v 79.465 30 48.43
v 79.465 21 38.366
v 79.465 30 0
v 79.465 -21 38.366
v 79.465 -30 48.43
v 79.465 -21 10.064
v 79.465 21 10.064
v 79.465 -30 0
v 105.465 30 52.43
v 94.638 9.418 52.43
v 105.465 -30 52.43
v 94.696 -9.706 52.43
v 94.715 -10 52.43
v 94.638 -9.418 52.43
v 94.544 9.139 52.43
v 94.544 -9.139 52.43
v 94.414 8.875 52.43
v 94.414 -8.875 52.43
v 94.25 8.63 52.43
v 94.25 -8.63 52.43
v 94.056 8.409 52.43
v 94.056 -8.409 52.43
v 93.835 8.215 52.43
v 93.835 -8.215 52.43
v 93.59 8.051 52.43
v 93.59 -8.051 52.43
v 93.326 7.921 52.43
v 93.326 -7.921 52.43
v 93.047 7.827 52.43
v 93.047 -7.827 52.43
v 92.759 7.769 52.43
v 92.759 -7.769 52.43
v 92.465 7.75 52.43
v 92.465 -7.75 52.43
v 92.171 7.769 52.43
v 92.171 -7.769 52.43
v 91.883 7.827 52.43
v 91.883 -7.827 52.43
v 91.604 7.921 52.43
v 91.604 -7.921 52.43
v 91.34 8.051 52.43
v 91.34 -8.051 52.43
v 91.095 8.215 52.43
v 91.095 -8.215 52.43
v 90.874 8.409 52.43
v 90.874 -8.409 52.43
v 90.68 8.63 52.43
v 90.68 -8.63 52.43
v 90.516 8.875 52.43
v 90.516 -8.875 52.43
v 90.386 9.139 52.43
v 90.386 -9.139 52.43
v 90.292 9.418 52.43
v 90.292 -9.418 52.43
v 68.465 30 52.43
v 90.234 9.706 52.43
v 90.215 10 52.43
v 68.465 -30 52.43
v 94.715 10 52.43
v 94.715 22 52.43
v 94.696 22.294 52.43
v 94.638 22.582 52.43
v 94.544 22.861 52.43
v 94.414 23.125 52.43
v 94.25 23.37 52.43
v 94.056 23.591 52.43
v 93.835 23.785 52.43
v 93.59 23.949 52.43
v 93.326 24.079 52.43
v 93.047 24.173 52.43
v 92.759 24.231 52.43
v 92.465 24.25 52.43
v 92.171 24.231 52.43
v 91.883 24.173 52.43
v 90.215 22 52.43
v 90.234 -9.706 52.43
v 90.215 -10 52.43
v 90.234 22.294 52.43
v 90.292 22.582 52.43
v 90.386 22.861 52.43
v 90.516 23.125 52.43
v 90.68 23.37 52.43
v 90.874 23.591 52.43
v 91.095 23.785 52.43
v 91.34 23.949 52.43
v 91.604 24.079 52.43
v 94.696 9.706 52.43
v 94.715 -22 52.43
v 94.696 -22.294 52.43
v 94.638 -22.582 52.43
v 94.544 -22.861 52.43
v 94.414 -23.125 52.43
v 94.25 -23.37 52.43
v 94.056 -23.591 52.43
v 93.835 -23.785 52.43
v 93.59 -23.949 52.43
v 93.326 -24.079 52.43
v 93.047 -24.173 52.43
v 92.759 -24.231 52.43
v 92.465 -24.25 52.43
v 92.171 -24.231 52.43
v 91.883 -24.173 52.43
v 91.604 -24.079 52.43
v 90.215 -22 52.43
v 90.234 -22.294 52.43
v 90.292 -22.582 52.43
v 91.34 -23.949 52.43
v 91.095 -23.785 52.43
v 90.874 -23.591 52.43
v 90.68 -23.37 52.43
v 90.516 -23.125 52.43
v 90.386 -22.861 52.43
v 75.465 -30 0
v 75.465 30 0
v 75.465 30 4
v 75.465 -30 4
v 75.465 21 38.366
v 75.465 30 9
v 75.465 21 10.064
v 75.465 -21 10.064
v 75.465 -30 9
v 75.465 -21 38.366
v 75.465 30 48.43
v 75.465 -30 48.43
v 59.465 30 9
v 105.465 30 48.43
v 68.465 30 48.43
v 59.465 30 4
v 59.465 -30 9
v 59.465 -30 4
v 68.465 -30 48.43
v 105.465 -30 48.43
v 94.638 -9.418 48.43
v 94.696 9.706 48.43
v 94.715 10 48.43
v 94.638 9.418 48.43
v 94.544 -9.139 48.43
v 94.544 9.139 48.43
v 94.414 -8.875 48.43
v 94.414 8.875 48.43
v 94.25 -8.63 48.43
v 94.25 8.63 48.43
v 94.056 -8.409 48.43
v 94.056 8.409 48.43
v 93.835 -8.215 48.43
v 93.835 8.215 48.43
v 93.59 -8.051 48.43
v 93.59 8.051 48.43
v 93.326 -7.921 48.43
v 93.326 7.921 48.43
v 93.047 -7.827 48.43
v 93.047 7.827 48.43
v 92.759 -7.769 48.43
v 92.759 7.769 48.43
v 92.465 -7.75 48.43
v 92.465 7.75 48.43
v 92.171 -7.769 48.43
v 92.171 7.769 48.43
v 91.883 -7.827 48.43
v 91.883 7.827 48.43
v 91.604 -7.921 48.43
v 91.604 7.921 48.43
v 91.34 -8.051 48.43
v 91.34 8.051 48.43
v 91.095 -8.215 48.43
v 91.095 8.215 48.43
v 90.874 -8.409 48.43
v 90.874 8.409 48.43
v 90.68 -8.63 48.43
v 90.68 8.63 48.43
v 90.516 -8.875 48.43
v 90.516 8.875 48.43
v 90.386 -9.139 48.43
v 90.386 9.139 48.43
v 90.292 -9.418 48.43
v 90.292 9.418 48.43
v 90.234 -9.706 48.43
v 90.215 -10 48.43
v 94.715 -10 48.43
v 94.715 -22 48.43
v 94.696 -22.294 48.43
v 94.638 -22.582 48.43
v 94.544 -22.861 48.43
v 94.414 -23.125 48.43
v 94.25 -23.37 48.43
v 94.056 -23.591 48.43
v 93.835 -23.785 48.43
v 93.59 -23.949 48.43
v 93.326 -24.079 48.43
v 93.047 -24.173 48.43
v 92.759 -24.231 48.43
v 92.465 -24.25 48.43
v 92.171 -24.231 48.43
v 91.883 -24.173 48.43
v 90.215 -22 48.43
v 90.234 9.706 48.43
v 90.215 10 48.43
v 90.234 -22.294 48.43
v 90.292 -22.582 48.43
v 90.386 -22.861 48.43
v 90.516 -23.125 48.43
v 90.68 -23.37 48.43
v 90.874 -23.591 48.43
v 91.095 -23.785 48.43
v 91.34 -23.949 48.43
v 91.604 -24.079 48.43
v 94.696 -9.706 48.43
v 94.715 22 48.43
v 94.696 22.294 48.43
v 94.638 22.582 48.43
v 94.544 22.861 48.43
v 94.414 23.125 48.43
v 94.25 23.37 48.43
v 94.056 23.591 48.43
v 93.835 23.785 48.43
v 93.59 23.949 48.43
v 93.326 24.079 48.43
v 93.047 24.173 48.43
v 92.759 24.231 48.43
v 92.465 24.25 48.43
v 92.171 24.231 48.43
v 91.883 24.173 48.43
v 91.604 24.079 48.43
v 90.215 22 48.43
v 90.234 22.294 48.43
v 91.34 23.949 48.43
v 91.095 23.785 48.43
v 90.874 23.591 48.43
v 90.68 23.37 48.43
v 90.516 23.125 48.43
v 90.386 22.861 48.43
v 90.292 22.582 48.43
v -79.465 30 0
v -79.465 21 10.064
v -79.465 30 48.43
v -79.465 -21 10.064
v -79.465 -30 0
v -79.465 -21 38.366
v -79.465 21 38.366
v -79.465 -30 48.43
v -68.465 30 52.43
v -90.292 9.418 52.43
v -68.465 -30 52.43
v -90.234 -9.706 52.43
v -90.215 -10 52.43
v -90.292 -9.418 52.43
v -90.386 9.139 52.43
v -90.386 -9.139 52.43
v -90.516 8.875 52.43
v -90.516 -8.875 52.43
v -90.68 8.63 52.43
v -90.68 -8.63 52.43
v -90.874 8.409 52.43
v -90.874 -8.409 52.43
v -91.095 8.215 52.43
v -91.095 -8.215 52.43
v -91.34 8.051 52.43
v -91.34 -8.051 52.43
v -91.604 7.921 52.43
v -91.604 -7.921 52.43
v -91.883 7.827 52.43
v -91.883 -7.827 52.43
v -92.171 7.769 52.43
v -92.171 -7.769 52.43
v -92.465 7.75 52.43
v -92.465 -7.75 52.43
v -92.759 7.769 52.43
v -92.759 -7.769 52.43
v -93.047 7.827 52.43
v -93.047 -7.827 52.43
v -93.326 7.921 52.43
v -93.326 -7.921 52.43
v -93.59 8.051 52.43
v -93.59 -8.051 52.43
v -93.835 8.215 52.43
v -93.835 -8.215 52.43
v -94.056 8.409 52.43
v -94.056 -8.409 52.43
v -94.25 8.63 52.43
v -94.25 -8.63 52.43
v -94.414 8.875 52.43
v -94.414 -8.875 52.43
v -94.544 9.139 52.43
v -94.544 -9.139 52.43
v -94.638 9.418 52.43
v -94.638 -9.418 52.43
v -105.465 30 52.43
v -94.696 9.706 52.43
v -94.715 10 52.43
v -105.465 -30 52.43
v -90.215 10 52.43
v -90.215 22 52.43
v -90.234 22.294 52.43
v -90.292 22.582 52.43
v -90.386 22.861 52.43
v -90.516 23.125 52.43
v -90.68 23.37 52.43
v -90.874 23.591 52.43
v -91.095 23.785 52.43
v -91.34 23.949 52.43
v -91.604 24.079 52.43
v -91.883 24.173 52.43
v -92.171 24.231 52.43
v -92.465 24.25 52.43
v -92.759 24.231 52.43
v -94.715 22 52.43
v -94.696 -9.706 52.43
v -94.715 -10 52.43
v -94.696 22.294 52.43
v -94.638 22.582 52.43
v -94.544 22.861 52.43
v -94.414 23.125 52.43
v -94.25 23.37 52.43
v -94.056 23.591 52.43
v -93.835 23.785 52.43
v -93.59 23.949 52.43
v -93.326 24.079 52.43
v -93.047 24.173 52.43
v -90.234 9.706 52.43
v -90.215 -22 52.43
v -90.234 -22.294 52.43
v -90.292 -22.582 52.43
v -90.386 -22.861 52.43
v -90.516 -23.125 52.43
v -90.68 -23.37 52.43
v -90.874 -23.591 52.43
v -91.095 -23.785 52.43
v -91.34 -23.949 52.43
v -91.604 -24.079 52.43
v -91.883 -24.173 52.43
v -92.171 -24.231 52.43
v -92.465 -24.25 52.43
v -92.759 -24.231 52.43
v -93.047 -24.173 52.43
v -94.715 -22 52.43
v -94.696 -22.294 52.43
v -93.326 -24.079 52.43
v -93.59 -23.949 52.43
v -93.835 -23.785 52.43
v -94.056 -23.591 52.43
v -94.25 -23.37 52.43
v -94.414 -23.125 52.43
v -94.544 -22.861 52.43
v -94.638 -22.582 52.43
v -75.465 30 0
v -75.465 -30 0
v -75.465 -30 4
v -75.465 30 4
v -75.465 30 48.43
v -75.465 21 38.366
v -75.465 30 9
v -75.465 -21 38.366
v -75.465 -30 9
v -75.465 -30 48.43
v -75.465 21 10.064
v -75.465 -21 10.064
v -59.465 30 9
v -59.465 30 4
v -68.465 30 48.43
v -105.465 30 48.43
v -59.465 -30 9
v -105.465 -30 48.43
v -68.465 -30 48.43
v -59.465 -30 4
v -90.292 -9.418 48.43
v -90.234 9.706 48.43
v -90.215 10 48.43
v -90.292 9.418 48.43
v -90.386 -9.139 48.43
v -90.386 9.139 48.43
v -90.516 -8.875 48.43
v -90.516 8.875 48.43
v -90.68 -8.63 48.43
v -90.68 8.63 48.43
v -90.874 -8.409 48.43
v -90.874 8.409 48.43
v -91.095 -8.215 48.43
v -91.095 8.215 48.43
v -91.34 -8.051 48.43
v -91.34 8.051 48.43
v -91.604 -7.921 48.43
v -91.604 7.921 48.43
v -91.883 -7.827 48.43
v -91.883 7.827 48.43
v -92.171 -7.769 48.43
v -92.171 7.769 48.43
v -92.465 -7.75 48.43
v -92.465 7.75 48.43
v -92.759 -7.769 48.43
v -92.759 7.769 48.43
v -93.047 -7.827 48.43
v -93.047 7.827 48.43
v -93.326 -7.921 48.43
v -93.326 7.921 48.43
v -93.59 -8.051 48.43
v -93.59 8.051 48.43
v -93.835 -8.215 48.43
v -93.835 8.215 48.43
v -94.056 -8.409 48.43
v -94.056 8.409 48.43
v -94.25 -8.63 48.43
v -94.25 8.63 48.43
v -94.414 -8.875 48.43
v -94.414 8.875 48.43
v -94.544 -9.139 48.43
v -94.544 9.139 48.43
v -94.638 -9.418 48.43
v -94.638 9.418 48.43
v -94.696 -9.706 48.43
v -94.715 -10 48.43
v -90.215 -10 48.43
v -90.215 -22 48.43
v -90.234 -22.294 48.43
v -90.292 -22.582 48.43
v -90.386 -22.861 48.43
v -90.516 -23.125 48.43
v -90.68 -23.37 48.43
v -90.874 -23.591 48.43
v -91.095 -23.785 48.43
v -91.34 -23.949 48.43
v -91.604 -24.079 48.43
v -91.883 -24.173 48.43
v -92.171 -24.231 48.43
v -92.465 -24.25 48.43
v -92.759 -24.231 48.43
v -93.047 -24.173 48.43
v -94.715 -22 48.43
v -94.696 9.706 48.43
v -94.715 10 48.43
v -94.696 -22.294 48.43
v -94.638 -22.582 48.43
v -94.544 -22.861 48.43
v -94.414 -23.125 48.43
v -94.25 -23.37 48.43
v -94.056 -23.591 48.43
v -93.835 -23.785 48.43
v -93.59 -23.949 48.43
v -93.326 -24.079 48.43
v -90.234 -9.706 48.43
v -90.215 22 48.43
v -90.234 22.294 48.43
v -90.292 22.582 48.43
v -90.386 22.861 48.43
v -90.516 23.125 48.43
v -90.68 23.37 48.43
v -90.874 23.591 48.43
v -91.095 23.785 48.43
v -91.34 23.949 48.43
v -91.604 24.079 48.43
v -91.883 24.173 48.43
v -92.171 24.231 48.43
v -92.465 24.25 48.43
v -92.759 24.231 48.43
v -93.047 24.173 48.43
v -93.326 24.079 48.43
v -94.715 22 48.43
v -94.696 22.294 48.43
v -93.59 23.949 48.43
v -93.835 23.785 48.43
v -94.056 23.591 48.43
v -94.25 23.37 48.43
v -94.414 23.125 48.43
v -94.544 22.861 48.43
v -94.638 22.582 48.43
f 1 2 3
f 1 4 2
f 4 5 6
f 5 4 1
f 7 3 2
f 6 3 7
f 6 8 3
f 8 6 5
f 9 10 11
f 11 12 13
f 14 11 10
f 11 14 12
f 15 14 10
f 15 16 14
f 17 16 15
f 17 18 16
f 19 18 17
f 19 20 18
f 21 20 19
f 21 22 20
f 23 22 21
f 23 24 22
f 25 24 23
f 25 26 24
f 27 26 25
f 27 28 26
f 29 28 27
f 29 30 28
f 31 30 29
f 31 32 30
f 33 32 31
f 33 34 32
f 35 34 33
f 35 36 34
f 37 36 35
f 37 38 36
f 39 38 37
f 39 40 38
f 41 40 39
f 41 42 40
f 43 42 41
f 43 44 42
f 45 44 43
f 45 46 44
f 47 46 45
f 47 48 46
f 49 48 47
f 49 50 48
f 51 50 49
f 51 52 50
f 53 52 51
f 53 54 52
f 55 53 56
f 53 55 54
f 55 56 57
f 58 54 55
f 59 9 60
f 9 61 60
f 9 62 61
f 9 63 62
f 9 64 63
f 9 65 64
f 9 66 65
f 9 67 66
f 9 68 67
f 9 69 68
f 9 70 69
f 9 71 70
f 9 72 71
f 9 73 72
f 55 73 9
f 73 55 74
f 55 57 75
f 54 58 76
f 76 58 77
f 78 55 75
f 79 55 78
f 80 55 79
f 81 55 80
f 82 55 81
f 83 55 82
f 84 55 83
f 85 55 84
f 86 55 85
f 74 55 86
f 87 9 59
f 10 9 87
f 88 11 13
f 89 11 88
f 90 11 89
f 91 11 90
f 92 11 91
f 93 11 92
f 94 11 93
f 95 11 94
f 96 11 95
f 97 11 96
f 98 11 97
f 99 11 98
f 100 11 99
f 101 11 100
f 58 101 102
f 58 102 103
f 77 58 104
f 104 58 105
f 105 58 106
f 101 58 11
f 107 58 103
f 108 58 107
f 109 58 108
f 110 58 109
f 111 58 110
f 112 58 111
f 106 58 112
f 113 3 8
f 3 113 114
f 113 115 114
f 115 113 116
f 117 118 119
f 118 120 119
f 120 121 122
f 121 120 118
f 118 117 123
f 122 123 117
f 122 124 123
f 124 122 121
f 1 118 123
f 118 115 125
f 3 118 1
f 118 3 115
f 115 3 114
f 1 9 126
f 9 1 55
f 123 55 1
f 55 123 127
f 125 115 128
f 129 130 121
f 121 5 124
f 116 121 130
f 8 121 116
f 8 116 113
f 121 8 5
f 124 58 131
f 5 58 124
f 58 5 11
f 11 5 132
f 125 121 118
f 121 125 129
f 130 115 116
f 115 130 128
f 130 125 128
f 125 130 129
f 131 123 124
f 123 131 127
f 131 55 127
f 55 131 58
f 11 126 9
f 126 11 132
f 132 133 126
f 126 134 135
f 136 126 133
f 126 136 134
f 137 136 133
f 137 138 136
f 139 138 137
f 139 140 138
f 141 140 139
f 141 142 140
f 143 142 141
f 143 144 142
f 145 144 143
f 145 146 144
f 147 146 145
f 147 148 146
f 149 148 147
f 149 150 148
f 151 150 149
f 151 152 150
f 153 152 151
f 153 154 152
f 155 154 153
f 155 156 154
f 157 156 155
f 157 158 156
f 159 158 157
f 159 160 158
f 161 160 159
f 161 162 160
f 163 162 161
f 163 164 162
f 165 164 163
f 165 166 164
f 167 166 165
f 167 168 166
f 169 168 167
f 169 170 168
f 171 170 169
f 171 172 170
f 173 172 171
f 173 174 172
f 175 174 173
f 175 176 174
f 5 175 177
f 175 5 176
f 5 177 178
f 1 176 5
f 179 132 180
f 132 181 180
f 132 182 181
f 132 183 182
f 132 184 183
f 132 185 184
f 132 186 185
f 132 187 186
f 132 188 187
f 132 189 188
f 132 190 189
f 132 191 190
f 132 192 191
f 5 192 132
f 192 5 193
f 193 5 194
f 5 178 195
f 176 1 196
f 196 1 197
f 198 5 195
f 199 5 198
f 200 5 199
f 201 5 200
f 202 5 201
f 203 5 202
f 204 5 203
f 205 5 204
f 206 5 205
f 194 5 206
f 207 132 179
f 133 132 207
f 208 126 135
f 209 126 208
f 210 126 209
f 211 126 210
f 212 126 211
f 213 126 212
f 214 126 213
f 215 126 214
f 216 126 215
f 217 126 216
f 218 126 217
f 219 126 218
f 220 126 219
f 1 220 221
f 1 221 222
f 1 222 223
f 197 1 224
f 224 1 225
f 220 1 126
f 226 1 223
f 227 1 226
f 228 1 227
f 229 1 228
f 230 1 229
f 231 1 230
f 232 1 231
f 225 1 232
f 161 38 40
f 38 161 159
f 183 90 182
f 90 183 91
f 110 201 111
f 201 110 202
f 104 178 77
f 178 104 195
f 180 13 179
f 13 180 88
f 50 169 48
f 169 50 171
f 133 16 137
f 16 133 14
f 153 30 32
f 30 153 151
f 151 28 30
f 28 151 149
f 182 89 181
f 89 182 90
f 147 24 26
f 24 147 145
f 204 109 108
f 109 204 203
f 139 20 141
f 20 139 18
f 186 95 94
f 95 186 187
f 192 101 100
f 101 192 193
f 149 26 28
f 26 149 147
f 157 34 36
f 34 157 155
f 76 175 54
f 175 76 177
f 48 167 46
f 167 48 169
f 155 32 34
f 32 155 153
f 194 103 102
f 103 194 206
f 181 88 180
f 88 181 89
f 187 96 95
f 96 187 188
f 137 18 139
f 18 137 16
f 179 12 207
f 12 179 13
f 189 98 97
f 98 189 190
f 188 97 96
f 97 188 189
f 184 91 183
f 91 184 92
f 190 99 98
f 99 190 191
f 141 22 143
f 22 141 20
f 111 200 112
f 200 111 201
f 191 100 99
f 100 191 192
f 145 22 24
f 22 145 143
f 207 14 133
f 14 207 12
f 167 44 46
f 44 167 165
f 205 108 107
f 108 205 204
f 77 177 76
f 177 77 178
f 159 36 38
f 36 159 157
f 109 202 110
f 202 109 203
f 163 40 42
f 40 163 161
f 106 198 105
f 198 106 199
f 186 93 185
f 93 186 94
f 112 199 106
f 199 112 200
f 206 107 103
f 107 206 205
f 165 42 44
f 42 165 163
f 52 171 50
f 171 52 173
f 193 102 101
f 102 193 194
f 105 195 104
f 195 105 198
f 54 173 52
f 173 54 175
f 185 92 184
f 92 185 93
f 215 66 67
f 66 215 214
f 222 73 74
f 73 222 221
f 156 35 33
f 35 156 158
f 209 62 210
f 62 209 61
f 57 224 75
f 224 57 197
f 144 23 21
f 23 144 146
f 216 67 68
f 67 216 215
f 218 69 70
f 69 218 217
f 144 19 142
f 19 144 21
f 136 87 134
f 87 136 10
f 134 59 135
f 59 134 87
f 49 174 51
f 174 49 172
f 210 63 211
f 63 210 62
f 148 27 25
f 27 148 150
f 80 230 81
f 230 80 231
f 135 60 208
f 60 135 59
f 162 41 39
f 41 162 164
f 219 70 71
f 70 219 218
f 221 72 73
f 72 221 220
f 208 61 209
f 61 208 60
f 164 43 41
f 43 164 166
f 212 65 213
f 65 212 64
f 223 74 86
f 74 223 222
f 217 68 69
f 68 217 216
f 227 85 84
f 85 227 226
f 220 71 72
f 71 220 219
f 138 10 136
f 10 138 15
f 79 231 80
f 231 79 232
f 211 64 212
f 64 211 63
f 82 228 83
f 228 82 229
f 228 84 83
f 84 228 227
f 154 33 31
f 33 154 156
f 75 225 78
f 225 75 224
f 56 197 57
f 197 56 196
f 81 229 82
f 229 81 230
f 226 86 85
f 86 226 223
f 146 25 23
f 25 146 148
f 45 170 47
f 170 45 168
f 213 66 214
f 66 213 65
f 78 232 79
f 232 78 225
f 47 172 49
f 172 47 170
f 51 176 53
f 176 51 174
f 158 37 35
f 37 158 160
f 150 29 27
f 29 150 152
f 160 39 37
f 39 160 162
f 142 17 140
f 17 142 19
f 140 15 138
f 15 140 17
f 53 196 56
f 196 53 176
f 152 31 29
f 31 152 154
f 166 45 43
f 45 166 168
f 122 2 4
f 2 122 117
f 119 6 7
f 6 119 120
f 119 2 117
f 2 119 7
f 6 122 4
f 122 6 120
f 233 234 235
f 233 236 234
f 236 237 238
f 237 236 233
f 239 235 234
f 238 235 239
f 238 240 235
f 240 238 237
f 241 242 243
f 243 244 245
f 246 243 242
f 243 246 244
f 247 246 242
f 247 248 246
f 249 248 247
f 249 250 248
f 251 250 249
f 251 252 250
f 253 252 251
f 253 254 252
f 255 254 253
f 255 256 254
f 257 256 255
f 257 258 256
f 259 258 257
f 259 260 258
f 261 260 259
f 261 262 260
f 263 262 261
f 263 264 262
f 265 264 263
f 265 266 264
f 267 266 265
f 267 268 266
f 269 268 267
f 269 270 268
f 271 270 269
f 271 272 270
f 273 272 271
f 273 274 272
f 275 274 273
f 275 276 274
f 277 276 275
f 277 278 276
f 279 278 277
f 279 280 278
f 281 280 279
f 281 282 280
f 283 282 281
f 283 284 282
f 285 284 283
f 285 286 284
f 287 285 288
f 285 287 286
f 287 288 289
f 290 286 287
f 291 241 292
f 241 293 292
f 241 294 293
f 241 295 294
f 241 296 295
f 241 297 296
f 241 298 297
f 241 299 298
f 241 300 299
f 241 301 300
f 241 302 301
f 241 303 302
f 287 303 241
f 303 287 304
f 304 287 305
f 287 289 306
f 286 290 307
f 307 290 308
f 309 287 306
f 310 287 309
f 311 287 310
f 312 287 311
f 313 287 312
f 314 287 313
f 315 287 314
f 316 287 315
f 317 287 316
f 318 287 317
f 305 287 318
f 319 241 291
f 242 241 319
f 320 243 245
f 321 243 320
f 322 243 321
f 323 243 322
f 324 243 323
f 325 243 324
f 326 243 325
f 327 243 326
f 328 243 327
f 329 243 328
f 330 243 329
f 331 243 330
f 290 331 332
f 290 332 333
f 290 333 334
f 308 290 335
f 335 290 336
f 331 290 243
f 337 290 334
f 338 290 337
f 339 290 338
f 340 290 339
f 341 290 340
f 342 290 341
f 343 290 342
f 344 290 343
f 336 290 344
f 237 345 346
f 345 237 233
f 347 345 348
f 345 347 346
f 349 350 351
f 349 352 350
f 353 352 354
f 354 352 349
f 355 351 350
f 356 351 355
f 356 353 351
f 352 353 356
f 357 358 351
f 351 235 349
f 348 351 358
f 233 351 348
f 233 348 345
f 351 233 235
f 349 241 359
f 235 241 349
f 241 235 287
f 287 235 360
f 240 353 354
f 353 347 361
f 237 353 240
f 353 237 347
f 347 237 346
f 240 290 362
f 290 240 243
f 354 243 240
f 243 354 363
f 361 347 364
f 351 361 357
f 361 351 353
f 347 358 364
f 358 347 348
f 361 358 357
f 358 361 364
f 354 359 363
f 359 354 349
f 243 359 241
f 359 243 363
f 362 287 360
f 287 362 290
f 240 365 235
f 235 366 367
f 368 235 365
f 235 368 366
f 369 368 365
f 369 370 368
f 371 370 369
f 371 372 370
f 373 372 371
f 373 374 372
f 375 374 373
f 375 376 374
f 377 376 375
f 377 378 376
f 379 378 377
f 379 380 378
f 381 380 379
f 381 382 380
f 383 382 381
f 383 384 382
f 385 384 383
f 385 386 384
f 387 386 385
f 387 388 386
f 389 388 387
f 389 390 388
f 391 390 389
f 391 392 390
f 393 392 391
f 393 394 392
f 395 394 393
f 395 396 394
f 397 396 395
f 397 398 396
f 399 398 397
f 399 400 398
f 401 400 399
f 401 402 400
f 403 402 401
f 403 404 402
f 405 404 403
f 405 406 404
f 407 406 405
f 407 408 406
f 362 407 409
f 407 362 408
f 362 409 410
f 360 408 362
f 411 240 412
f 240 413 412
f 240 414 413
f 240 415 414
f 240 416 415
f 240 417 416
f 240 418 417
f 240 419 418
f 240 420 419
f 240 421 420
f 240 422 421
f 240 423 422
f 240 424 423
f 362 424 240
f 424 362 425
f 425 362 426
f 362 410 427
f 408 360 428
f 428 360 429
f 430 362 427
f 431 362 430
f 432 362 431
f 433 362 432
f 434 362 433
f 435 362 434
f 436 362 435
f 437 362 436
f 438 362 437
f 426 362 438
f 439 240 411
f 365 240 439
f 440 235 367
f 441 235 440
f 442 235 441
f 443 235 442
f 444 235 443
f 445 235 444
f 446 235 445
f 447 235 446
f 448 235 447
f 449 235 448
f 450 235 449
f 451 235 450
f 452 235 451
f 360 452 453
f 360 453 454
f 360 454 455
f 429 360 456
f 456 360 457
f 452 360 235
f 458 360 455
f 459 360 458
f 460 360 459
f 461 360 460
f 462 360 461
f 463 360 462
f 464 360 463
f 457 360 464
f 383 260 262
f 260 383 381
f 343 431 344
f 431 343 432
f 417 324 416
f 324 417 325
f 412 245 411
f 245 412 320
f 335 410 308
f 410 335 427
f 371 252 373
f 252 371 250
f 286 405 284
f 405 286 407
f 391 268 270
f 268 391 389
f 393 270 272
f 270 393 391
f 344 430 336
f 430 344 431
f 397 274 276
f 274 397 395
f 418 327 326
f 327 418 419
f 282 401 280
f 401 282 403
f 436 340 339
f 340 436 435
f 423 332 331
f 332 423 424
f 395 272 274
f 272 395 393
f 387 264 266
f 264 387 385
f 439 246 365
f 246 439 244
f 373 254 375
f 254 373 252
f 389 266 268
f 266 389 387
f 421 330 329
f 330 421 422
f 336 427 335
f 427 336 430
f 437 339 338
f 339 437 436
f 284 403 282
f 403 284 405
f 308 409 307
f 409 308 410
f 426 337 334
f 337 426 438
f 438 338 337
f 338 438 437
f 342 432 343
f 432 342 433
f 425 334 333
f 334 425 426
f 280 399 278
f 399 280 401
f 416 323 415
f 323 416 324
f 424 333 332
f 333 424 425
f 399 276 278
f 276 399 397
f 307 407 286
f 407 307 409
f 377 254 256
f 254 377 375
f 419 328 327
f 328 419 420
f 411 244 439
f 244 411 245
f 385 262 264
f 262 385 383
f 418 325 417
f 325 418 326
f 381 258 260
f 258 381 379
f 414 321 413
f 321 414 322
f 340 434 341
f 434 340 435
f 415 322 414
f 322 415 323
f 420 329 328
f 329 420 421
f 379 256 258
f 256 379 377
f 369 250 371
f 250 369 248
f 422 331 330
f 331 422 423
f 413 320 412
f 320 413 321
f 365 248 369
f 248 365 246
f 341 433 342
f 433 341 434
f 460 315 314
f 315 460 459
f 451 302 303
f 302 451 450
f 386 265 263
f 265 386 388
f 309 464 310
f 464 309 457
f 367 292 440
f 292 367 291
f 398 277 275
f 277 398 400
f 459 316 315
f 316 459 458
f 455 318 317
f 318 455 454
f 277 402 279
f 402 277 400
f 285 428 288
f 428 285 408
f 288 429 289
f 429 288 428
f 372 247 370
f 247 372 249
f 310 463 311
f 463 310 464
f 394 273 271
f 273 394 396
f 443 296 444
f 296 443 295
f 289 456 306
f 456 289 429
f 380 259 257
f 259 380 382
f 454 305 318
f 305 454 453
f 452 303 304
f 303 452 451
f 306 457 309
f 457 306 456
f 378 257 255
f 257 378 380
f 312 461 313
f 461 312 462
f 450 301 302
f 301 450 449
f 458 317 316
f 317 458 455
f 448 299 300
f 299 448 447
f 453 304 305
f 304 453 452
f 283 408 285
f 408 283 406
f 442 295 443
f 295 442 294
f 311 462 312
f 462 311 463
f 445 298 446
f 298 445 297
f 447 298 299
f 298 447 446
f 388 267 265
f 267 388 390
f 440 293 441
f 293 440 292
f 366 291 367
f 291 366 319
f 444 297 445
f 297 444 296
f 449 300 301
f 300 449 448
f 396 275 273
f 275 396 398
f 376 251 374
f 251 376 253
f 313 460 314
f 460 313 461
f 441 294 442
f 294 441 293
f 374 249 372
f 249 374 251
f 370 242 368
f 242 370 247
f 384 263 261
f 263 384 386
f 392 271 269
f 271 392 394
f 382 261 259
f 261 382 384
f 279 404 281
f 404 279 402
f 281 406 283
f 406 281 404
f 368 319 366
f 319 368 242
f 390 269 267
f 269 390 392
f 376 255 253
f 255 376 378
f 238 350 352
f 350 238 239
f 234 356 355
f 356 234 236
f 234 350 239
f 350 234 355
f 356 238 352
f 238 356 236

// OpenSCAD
/*
Under-Desk KVM Mount (Front/Back Open)
=====================================

Design:
- Two side brackets (left + right)
- KVM rests on a lower shelf
- Top lip prevents drop-out
- Front & back faces fully open for ports/cables
- Tuned for ~1.37 lb device, wood-screw mounting

KVM Dimensions:
- Width: 140.53 mm
- Depth: 67.36 mm
- Height: 38.03 mm
*/

//////////////////////
// KVM DIMENSIONS
//////////////////////
dev_w = 140.53;
dev_d = 67.36;
dev_h = 38.03;

//////////////////////
// USER TUNING
//////////////////////
part = "assembly";   // "assembly" | "left" | "right" | "both"
show_device = false;

clearance = 1.2;     // side/top clearance
wall = 4;            // main wall thickness

// Shelf (device rests here)
shelf_depth = 16;
shelf_th = 5;

// Retention lip
lip_depth = 7;
lip_th = 4;

// Bracket length (along device depth)
bracket_len = 60;    // shorter than device depth → ports stay clear

// Top flange (screws into desk)
flange_w = 26;
flange_th = 4;
hole_d = 4.5;
slot_len = 12;
hole_edge = 14;      // distance from ends

//////////////////////
// DERIVED
//////////////////////
inner_h = dev_h + 2*clearance;

//////////////////////
// HELPERS
//////////////////////

module elongated_slot(d, len, th){
  hull(){
    translate([-len/2,0,0]) cylinder(h=th+0.2, d=d, $fn=48);
    translate([ len/2,0,0]) cylinder(h=th+0.2, d=d, $fn=48);
  }
}

//////////////////////
// SINGLE BRACKET (RIGHT)
//////////////////////
module bracket_right(){
  plate_th = wall;
  plate_d  = bracket_len;
  plate_h  = inner_h + wall*2 + flange_th;
  lip_z    = wall + inner_h + wall;

  difference(){
    union(){
      // Main vertical wall
      cube([plate_th, plate_d, plate_h], center=false);

      // Bottom shelf (supports KVM)
      translate([-shelf_depth, 0, wall])
        cube([shelf_depth, plate_d, shelf_th], center=false);

      // Top retention lip
      translate([-lip_depth, 0, lip_z])
        cube([lip_depth, plate_d, lip_th], center=false);

      // Top flange (screws into desk)
      translate([plate_th, 0, plate_h - flange_th])
        cube([flange_w, plate_d, flange_th], center=false);
    }

    // Screw slots (2 per bracket)
    for (yy = [hole_edge, plate_d - hole_edge]){
      translate([plate_th + flange_w/2, yy, plate_h - flange_th - 0.1])
        rotate([0,0,90])
          elongated_slot(hole_d, slot_len, flange_th);
    }

    // Side airflow / weight reduction window
    translate([-0.5, plate_d*0.15, wall + inner_h*0.15])
      cube([plate_th+1, plate_d*0.7, inner_h*0.7], center=false);
  }
}

//////////////////////
// MIRROR FOR LEFT
//////////////////////
module bracket_left(){
  mirror([1,0,0]) bracket_right();
}

//////////////////////
// DEVICE PREVIEW (CORRECTLY RESTING)
//////////////////////
module device_mock(){
  color([0.15,0.15,0.15,0.45])
    translate([
      -dev_w/2,
      -dev_d/2,
      wall + shelf_th   // rests ON the shelf
    ])
      cube([dev_w, dev_d, dev_h], center=false);
}

//////////////////////
// ASSEMBLY VIEW
//////////////////////
module assembly(){
  if(show_device) device_mock();

  y0 = -bracket_len/2;
  x_offset = dev_w/2 + clearance;

  // Right bracket
  translate([ x_offset + wall, y0, 0 ])
    bracket_right();

  // Left bracket
  translate([-(x_offset + wall), y0, 0 ])
    bracket_left();
}

//////////////////////
// OUTPUT SELECTOR
//////////////////////
if(part == "assembly"){
  assembly();
} else if(part == "right"){
  bracket_right();
} else if(part == "left"){
  bracket_left();
} else if(part == "both"){
  translate([0, -bracket_len-20, 0]) bracket_left();
  translate([0,  0,             0]) bracket_right();
} else {
  assembly();
}
